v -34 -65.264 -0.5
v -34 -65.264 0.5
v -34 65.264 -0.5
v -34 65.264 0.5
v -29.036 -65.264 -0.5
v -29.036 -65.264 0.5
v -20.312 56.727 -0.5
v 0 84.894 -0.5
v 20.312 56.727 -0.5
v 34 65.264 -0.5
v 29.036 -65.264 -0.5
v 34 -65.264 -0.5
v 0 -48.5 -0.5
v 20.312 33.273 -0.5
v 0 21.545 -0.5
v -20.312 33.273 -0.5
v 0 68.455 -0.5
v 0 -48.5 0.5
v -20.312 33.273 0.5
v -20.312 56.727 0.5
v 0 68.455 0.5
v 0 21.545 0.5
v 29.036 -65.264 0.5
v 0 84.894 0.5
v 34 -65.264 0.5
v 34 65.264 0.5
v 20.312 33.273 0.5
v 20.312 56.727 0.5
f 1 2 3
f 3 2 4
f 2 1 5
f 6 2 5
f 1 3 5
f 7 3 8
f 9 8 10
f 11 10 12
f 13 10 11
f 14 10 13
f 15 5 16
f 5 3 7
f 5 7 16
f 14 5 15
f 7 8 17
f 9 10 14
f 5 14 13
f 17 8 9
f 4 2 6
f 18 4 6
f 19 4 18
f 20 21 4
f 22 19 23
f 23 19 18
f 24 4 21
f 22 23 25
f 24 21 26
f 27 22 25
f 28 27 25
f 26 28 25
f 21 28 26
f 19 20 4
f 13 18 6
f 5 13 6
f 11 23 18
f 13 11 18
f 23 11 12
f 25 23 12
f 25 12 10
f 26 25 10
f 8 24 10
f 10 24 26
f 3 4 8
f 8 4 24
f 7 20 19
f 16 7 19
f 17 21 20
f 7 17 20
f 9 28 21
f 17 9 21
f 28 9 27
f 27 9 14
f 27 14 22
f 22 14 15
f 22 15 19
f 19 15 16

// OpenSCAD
$fn = 100;

// Functions for calculating the half-hexagons
function edge_length(width) = (width/2) / cos(30); // CAH
function point_height(width) = (width/2) * tan(30); // TOA
function leg(width) = edge_length(width) * sqrt(1/2);
function x_offset(width) = (width/2) - (leg(width) * cos(15));
function y_offset(width, length) = (length/2) - (leg(width) * sin(15));

//function x_offset2(width) = (width/2) + (leg(width) * sin(15));
function y_offset2(width, length) = (length/2) + (leg(width) * cos(15)) - point_height(w) + 2; // +2 is arbitrary, should fix.

// Core size variables
scaling = 1;
h_lid = 1;
w = (65) * scaling;
l = (90 + (point_height(w) * 2)) * scaling; // 90 = Pi, ~20 for point height

// Values for wall thickness
w_pad = 3;
l_pad = 3;

W = w + w_pad;
L = l + l_pad;
btm = W*0.9;

// The lid
function hex_len(width) = 2 * (cos(30) * width);
hex_edge = edge_length(w/1.6);

rotate([0,0,0]){
  difference(){
    difference(){
      union(){
        cube([W, L, h_lid], center=true); // Center Cube
        translate([x_offset(W),y_offset(W,L),0]){
        	rotate([0,0,-30]) cube([edge_length(W),edge_length(W),h_lid], center=true);
        }
        translate([-x_offset(W),y_offset(W,L),0]){
        	rotate([0,0,30]) cube([edge_length(W),edge_length(W),h_lid], center=true);
        }
      }
      translate([x_offset(btm),-y_offset2(btm,L),0]){
      	rotate([0,0,-30]) cube([edge_length(btm),edge_length(btm),h_lid], center=true);
      }
      translate([-x_offset(btm),-y_offset2(btm,L),0]){
      	rotate([0,0,30]) cube([edge_length(btm),edge_length(btm),h_lid], center=true);
      }
    }

    // The cutout
    translate([0,45,0]){
      union(){
      	rotate([0,0,0]) cube([hex_len(hex_edge),hex_edge,h_lid], center=true);
      	rotate([0,0,60]) cube([hex_len(hex_edge),hex_edge,h_lid], center=true);
      	rotate([0,0,120]) cube([hex_len(hex_edge),hex_edge,h_lid], center=true);
      }
    }
  }
}
